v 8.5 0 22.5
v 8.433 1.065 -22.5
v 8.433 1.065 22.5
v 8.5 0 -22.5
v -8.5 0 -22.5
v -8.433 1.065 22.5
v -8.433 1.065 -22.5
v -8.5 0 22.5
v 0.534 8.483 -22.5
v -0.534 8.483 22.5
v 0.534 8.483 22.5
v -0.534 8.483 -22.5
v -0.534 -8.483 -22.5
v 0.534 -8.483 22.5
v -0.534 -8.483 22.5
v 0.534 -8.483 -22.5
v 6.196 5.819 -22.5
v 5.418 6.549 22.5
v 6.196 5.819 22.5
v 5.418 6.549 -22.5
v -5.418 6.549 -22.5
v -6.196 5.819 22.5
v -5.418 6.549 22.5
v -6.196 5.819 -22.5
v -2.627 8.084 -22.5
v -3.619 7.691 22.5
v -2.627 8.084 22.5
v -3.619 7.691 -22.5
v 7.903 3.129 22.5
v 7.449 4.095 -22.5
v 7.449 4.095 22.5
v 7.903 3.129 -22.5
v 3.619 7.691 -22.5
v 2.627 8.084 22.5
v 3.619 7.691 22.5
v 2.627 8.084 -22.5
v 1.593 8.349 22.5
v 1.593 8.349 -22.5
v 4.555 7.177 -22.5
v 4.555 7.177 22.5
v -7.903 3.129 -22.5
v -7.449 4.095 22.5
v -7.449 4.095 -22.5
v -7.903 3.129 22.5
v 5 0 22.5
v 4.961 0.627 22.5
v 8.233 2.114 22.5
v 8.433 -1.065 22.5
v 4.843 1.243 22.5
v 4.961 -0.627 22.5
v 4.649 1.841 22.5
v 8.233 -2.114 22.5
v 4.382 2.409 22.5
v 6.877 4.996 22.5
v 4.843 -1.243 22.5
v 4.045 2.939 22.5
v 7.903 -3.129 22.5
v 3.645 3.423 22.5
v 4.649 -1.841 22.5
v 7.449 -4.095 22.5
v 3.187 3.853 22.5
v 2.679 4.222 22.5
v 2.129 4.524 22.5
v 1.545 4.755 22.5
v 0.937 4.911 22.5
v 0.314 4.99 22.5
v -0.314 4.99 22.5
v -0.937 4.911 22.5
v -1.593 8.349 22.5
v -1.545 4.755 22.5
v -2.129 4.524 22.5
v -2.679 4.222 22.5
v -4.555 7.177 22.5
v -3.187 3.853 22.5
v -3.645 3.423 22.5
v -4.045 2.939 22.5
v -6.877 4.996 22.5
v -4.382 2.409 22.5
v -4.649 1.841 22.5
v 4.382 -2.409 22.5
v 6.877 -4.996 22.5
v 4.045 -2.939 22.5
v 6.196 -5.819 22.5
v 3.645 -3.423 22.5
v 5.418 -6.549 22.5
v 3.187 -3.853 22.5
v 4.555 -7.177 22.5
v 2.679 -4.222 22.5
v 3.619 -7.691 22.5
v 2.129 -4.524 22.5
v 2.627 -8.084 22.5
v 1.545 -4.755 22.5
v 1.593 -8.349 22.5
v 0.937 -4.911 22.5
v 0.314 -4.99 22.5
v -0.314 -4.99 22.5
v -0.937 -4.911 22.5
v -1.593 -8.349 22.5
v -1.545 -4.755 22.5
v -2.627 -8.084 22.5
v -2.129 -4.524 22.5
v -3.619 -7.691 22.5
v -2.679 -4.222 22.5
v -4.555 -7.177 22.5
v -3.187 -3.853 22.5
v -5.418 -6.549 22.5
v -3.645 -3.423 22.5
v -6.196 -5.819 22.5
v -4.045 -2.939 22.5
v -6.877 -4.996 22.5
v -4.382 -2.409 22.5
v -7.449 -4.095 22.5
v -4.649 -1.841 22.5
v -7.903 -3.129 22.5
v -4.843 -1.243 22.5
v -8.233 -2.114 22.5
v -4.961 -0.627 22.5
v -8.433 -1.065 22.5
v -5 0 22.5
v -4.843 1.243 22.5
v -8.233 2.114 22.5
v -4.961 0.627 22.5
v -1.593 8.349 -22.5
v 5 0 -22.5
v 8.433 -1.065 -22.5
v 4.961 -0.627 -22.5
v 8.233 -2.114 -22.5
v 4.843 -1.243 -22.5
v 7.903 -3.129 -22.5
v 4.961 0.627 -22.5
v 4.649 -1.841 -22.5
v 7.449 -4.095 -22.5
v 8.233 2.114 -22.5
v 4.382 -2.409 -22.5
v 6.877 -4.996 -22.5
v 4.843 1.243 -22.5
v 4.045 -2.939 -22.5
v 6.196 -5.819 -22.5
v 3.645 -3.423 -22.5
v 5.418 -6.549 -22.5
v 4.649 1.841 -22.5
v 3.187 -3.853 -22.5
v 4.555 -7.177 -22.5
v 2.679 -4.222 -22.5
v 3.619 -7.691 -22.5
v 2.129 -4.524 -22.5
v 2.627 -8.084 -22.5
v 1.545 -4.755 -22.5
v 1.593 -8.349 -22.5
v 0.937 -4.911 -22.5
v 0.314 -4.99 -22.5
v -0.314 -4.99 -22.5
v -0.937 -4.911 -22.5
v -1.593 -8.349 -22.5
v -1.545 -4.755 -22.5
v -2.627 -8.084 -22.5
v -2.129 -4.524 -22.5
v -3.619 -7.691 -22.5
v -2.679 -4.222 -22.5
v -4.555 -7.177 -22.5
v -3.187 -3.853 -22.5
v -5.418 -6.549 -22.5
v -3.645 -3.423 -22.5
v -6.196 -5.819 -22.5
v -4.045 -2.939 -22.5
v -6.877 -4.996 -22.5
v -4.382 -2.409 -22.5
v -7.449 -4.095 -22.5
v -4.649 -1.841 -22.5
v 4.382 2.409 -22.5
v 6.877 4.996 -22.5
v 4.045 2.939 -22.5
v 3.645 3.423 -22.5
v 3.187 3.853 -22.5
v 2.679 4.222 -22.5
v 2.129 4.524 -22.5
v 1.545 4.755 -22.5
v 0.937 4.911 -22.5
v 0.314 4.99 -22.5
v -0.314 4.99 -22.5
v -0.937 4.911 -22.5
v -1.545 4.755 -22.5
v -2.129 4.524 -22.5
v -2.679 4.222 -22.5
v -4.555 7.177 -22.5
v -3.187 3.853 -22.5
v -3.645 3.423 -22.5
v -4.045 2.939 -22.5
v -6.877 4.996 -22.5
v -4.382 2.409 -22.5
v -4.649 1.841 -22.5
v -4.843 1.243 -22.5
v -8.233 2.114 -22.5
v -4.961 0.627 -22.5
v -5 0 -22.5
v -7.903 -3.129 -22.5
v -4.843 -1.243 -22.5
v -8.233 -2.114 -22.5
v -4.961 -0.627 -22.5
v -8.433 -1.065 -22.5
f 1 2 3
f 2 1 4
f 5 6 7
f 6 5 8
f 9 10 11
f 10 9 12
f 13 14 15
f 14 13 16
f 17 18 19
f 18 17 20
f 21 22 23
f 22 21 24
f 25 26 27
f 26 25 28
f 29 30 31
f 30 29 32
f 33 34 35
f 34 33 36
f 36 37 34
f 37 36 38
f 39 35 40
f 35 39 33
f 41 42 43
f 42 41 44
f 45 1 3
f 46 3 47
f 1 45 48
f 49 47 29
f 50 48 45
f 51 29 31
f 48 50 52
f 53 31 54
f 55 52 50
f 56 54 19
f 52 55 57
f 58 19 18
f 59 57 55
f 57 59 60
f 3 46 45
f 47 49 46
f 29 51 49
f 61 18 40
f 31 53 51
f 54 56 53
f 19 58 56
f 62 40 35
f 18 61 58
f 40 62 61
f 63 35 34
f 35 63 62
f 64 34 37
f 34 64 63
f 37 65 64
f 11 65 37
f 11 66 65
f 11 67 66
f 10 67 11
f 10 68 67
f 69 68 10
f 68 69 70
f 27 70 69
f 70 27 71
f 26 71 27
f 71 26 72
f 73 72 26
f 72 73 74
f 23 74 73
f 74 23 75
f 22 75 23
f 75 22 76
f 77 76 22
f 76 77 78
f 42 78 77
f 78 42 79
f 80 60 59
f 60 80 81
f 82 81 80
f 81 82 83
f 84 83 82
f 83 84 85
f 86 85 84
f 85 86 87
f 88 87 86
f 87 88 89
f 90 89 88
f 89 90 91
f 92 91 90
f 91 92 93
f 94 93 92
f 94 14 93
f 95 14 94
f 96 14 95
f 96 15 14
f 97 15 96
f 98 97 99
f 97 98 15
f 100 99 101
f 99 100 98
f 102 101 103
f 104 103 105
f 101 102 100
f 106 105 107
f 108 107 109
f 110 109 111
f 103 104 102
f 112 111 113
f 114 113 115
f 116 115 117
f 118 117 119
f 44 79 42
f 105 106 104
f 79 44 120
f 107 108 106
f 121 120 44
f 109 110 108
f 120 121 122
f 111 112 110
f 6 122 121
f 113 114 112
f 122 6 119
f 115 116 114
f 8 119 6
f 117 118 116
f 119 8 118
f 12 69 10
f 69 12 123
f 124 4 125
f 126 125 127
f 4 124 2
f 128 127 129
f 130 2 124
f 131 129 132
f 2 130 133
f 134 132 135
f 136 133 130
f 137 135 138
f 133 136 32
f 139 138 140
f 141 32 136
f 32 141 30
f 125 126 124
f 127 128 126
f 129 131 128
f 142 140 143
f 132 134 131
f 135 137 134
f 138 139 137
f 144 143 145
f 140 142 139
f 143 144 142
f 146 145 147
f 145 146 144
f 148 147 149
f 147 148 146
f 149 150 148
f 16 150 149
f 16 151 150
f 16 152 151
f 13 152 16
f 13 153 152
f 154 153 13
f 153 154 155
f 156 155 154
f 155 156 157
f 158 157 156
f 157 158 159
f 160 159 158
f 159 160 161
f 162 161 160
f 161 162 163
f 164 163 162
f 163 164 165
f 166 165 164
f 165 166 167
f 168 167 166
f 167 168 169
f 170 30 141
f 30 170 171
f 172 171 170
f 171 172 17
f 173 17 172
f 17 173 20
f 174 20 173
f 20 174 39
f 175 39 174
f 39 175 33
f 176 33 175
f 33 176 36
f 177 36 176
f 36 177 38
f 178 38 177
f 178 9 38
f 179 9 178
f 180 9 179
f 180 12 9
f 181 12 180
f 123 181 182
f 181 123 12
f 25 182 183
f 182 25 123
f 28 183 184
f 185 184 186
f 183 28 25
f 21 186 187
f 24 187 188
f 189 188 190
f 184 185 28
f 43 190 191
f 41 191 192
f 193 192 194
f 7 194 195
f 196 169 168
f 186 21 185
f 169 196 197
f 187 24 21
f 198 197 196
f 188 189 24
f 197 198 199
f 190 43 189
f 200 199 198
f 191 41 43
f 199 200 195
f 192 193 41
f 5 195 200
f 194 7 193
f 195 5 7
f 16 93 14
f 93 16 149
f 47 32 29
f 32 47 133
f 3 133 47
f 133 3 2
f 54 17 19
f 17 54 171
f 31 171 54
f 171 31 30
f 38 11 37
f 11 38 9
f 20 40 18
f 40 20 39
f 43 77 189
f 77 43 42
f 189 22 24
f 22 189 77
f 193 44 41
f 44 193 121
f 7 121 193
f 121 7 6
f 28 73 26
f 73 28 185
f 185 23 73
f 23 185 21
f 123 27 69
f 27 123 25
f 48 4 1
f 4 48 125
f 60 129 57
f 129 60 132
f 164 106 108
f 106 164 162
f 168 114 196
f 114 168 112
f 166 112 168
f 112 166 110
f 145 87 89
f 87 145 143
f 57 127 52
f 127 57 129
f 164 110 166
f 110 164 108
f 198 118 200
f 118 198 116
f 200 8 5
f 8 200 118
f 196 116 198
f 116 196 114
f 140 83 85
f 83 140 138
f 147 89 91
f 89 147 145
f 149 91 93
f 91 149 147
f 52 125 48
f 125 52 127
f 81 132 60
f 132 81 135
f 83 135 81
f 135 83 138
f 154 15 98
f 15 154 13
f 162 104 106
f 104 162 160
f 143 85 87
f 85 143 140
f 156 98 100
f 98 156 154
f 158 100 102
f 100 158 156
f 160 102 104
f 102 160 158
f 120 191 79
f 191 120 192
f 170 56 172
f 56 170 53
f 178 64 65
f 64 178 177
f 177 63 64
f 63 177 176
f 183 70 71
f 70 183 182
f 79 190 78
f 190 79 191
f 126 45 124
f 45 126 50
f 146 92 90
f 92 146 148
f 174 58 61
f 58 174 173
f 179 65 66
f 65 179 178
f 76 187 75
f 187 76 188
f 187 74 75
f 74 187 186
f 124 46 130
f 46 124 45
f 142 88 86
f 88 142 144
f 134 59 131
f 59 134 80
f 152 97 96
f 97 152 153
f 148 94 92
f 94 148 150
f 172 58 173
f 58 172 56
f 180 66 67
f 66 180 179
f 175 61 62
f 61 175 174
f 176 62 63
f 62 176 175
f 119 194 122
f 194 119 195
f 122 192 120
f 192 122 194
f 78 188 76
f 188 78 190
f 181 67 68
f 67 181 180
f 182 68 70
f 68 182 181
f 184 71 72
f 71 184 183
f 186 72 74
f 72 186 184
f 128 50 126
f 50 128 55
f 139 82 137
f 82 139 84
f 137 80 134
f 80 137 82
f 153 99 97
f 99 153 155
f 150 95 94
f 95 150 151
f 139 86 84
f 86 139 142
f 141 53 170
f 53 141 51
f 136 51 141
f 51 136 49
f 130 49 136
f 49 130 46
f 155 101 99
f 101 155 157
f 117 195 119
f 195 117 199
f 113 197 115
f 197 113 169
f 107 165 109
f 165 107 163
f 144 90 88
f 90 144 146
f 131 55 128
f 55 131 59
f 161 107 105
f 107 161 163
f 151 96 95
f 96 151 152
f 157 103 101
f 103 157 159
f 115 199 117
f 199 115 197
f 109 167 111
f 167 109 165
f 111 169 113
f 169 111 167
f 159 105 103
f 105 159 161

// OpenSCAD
$fn = 50;


difference() {
	union() {
		translate(v = [0, 0, -22.5000000000]) {
			cylinder(h = 45, r = 8.5000000000);
		}
	}
	union() {
		translate(v = [0, 0, -100.0000000000]) {
			cylinder(h = 200, r = 5.0000000000);
		}
	}
}
